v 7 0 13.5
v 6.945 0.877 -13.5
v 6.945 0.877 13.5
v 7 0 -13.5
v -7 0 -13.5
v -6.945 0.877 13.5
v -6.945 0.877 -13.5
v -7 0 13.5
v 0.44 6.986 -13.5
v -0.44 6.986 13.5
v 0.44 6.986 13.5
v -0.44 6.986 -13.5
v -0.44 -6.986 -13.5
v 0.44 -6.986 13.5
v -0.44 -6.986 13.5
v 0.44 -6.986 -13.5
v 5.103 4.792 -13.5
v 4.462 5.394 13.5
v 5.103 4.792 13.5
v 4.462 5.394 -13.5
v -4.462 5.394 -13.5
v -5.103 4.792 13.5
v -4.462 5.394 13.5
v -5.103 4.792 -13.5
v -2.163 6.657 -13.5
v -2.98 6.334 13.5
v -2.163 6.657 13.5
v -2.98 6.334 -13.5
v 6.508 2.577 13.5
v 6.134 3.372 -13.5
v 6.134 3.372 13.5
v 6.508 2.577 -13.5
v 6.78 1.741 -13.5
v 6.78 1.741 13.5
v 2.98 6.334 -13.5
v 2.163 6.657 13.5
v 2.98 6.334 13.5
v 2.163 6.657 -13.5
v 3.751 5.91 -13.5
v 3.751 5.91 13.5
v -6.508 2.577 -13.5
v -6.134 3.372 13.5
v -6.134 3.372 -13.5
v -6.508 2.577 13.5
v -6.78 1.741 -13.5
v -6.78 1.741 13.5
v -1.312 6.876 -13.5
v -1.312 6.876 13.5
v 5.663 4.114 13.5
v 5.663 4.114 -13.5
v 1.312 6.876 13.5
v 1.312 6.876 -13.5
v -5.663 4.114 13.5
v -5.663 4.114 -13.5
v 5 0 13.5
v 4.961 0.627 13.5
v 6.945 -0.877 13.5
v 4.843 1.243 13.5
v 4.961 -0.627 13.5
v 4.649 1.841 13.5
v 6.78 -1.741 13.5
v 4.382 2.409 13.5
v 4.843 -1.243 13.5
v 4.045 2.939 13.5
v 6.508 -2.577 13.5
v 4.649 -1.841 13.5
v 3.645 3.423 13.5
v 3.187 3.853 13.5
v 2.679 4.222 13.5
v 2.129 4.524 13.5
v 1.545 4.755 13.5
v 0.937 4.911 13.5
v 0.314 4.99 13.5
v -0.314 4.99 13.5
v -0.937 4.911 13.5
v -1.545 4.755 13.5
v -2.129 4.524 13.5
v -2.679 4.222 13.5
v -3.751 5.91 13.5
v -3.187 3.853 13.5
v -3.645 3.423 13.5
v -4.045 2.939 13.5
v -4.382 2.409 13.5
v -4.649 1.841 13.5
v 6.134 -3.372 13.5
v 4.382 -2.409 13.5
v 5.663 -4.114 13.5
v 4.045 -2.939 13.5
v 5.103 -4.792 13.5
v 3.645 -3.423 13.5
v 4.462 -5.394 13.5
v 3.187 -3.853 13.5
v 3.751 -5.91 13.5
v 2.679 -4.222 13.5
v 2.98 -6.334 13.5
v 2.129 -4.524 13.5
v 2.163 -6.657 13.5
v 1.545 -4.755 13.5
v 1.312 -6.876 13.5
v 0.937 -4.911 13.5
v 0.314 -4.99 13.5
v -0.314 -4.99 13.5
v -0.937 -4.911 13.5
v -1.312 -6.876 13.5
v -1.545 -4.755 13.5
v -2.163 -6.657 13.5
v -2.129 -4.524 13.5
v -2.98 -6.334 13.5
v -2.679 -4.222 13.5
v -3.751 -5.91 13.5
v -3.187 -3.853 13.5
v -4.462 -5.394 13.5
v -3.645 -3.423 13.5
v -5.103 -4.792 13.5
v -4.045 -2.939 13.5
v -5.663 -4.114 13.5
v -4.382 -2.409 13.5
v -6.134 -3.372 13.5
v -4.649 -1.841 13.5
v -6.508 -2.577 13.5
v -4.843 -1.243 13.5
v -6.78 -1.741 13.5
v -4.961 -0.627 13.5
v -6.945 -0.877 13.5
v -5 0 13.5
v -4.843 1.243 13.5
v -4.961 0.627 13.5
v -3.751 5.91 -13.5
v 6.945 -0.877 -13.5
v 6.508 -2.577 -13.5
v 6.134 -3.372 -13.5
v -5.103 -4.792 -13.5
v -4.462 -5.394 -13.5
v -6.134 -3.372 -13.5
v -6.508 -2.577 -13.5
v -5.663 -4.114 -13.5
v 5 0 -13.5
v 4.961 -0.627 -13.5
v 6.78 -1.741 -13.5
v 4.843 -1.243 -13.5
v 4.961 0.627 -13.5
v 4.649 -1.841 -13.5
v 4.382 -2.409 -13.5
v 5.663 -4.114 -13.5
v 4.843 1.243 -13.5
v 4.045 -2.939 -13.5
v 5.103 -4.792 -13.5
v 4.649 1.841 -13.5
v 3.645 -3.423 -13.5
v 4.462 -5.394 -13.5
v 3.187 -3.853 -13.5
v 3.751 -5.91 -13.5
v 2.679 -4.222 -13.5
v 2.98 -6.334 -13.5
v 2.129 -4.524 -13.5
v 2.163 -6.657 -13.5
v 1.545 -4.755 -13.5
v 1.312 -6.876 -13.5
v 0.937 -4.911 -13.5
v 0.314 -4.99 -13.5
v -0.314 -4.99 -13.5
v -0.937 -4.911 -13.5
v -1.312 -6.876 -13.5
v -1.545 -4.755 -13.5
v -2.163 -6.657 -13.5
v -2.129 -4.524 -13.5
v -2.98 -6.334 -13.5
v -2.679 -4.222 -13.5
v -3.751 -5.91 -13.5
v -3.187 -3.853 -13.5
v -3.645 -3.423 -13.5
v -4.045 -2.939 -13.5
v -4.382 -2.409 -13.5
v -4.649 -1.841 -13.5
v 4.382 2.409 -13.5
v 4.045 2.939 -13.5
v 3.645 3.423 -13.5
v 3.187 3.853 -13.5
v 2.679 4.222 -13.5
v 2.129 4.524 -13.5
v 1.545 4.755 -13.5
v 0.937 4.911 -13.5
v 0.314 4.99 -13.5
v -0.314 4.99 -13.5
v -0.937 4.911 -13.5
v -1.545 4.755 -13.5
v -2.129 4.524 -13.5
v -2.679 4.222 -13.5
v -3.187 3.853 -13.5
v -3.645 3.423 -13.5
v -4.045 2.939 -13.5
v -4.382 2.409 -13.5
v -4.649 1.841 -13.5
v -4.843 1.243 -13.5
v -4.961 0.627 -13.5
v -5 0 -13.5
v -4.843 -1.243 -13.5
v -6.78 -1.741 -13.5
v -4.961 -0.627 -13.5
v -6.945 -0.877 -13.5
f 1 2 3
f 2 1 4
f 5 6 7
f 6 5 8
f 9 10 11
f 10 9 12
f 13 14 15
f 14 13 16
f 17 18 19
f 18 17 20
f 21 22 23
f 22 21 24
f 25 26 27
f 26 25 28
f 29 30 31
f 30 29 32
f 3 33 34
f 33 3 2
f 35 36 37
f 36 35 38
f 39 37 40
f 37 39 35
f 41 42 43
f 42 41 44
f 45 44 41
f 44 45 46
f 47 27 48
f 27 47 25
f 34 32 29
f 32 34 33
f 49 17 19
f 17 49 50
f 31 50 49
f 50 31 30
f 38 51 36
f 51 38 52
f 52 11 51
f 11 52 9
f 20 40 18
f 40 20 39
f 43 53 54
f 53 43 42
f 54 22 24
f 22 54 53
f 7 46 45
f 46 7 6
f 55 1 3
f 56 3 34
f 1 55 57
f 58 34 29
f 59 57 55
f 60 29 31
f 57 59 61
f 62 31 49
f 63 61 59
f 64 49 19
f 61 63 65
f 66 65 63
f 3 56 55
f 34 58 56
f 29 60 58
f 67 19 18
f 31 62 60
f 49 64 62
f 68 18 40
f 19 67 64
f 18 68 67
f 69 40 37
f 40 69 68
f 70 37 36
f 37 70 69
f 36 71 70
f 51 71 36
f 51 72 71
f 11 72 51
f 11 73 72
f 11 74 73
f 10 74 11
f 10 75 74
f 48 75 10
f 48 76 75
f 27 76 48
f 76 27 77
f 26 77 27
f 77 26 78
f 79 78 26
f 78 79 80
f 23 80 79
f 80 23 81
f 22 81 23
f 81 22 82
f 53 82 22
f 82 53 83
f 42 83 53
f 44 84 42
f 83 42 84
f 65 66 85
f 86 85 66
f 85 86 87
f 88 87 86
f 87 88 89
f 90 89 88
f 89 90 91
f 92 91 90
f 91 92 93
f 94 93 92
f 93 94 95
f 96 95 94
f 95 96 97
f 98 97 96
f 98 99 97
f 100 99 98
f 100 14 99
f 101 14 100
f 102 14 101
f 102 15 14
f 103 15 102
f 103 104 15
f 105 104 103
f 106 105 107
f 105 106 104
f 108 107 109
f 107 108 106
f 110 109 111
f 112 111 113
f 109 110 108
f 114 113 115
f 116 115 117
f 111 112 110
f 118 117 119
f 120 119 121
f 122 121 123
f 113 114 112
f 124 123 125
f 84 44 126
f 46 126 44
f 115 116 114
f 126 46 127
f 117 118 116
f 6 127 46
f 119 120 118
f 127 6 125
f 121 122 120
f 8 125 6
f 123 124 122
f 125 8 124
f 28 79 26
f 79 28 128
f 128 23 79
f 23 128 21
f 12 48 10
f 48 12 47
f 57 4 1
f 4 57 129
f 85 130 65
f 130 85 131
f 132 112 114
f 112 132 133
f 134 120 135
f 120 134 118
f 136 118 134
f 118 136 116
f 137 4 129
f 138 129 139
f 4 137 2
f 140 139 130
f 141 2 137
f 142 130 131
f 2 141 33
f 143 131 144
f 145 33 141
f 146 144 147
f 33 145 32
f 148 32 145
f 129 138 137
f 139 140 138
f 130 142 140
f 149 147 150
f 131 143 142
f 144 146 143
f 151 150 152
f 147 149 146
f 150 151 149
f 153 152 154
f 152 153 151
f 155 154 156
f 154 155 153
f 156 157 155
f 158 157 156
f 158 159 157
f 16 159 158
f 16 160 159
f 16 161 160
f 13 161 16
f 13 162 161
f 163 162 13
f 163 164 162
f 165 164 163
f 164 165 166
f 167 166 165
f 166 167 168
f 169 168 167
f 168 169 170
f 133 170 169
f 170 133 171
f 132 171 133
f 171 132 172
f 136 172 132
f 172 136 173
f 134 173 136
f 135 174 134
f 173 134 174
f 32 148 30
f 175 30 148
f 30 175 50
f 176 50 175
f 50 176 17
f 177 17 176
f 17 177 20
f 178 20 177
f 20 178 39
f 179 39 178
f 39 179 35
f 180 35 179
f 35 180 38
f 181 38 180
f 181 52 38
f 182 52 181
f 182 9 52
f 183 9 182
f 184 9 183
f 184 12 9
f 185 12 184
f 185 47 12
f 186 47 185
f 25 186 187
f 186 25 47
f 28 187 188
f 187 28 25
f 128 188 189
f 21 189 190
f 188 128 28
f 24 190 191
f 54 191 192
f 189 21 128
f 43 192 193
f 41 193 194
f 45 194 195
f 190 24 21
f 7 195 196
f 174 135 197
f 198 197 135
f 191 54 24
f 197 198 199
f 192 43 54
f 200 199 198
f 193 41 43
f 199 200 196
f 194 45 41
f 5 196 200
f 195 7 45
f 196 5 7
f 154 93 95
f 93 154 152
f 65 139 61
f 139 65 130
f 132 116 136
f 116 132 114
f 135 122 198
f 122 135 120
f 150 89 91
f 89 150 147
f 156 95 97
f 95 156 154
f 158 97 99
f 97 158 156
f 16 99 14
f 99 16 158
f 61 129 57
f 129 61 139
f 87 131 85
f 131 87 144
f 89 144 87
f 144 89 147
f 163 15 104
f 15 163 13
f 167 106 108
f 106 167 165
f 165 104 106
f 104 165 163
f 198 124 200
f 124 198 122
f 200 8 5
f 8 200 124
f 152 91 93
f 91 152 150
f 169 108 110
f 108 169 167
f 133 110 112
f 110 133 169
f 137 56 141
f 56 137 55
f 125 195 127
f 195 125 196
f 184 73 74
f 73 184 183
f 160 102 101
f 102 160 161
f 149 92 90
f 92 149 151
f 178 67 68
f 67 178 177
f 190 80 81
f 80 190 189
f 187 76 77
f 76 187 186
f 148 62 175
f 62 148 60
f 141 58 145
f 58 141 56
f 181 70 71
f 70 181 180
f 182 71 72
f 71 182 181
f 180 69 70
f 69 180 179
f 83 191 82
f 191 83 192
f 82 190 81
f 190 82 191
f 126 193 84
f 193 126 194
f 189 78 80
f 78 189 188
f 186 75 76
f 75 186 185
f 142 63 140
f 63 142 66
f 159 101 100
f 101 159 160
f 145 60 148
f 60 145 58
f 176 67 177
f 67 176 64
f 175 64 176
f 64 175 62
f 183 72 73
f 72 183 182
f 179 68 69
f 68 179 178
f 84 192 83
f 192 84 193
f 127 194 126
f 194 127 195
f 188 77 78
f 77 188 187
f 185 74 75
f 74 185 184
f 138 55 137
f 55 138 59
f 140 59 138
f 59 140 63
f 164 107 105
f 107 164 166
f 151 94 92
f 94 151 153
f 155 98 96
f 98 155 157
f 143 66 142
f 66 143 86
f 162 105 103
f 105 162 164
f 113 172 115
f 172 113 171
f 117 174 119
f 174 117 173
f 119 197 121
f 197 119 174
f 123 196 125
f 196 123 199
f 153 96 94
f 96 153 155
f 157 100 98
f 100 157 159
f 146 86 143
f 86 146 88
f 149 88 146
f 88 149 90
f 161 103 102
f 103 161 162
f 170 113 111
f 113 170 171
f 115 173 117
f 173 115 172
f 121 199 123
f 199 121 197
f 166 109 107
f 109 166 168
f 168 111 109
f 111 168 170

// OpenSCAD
$fn = 50;


difference() {
	union() {
		translate(v = [0, 0, -13.5000000000]) {
			cylinder(h = 27, r = 7.0000000000);
		}
	}
	union() {
		translate(v = [0, 0, -100.0000000000]) {
			cylinder(h = 200, r = 5);
		}
	}
}
